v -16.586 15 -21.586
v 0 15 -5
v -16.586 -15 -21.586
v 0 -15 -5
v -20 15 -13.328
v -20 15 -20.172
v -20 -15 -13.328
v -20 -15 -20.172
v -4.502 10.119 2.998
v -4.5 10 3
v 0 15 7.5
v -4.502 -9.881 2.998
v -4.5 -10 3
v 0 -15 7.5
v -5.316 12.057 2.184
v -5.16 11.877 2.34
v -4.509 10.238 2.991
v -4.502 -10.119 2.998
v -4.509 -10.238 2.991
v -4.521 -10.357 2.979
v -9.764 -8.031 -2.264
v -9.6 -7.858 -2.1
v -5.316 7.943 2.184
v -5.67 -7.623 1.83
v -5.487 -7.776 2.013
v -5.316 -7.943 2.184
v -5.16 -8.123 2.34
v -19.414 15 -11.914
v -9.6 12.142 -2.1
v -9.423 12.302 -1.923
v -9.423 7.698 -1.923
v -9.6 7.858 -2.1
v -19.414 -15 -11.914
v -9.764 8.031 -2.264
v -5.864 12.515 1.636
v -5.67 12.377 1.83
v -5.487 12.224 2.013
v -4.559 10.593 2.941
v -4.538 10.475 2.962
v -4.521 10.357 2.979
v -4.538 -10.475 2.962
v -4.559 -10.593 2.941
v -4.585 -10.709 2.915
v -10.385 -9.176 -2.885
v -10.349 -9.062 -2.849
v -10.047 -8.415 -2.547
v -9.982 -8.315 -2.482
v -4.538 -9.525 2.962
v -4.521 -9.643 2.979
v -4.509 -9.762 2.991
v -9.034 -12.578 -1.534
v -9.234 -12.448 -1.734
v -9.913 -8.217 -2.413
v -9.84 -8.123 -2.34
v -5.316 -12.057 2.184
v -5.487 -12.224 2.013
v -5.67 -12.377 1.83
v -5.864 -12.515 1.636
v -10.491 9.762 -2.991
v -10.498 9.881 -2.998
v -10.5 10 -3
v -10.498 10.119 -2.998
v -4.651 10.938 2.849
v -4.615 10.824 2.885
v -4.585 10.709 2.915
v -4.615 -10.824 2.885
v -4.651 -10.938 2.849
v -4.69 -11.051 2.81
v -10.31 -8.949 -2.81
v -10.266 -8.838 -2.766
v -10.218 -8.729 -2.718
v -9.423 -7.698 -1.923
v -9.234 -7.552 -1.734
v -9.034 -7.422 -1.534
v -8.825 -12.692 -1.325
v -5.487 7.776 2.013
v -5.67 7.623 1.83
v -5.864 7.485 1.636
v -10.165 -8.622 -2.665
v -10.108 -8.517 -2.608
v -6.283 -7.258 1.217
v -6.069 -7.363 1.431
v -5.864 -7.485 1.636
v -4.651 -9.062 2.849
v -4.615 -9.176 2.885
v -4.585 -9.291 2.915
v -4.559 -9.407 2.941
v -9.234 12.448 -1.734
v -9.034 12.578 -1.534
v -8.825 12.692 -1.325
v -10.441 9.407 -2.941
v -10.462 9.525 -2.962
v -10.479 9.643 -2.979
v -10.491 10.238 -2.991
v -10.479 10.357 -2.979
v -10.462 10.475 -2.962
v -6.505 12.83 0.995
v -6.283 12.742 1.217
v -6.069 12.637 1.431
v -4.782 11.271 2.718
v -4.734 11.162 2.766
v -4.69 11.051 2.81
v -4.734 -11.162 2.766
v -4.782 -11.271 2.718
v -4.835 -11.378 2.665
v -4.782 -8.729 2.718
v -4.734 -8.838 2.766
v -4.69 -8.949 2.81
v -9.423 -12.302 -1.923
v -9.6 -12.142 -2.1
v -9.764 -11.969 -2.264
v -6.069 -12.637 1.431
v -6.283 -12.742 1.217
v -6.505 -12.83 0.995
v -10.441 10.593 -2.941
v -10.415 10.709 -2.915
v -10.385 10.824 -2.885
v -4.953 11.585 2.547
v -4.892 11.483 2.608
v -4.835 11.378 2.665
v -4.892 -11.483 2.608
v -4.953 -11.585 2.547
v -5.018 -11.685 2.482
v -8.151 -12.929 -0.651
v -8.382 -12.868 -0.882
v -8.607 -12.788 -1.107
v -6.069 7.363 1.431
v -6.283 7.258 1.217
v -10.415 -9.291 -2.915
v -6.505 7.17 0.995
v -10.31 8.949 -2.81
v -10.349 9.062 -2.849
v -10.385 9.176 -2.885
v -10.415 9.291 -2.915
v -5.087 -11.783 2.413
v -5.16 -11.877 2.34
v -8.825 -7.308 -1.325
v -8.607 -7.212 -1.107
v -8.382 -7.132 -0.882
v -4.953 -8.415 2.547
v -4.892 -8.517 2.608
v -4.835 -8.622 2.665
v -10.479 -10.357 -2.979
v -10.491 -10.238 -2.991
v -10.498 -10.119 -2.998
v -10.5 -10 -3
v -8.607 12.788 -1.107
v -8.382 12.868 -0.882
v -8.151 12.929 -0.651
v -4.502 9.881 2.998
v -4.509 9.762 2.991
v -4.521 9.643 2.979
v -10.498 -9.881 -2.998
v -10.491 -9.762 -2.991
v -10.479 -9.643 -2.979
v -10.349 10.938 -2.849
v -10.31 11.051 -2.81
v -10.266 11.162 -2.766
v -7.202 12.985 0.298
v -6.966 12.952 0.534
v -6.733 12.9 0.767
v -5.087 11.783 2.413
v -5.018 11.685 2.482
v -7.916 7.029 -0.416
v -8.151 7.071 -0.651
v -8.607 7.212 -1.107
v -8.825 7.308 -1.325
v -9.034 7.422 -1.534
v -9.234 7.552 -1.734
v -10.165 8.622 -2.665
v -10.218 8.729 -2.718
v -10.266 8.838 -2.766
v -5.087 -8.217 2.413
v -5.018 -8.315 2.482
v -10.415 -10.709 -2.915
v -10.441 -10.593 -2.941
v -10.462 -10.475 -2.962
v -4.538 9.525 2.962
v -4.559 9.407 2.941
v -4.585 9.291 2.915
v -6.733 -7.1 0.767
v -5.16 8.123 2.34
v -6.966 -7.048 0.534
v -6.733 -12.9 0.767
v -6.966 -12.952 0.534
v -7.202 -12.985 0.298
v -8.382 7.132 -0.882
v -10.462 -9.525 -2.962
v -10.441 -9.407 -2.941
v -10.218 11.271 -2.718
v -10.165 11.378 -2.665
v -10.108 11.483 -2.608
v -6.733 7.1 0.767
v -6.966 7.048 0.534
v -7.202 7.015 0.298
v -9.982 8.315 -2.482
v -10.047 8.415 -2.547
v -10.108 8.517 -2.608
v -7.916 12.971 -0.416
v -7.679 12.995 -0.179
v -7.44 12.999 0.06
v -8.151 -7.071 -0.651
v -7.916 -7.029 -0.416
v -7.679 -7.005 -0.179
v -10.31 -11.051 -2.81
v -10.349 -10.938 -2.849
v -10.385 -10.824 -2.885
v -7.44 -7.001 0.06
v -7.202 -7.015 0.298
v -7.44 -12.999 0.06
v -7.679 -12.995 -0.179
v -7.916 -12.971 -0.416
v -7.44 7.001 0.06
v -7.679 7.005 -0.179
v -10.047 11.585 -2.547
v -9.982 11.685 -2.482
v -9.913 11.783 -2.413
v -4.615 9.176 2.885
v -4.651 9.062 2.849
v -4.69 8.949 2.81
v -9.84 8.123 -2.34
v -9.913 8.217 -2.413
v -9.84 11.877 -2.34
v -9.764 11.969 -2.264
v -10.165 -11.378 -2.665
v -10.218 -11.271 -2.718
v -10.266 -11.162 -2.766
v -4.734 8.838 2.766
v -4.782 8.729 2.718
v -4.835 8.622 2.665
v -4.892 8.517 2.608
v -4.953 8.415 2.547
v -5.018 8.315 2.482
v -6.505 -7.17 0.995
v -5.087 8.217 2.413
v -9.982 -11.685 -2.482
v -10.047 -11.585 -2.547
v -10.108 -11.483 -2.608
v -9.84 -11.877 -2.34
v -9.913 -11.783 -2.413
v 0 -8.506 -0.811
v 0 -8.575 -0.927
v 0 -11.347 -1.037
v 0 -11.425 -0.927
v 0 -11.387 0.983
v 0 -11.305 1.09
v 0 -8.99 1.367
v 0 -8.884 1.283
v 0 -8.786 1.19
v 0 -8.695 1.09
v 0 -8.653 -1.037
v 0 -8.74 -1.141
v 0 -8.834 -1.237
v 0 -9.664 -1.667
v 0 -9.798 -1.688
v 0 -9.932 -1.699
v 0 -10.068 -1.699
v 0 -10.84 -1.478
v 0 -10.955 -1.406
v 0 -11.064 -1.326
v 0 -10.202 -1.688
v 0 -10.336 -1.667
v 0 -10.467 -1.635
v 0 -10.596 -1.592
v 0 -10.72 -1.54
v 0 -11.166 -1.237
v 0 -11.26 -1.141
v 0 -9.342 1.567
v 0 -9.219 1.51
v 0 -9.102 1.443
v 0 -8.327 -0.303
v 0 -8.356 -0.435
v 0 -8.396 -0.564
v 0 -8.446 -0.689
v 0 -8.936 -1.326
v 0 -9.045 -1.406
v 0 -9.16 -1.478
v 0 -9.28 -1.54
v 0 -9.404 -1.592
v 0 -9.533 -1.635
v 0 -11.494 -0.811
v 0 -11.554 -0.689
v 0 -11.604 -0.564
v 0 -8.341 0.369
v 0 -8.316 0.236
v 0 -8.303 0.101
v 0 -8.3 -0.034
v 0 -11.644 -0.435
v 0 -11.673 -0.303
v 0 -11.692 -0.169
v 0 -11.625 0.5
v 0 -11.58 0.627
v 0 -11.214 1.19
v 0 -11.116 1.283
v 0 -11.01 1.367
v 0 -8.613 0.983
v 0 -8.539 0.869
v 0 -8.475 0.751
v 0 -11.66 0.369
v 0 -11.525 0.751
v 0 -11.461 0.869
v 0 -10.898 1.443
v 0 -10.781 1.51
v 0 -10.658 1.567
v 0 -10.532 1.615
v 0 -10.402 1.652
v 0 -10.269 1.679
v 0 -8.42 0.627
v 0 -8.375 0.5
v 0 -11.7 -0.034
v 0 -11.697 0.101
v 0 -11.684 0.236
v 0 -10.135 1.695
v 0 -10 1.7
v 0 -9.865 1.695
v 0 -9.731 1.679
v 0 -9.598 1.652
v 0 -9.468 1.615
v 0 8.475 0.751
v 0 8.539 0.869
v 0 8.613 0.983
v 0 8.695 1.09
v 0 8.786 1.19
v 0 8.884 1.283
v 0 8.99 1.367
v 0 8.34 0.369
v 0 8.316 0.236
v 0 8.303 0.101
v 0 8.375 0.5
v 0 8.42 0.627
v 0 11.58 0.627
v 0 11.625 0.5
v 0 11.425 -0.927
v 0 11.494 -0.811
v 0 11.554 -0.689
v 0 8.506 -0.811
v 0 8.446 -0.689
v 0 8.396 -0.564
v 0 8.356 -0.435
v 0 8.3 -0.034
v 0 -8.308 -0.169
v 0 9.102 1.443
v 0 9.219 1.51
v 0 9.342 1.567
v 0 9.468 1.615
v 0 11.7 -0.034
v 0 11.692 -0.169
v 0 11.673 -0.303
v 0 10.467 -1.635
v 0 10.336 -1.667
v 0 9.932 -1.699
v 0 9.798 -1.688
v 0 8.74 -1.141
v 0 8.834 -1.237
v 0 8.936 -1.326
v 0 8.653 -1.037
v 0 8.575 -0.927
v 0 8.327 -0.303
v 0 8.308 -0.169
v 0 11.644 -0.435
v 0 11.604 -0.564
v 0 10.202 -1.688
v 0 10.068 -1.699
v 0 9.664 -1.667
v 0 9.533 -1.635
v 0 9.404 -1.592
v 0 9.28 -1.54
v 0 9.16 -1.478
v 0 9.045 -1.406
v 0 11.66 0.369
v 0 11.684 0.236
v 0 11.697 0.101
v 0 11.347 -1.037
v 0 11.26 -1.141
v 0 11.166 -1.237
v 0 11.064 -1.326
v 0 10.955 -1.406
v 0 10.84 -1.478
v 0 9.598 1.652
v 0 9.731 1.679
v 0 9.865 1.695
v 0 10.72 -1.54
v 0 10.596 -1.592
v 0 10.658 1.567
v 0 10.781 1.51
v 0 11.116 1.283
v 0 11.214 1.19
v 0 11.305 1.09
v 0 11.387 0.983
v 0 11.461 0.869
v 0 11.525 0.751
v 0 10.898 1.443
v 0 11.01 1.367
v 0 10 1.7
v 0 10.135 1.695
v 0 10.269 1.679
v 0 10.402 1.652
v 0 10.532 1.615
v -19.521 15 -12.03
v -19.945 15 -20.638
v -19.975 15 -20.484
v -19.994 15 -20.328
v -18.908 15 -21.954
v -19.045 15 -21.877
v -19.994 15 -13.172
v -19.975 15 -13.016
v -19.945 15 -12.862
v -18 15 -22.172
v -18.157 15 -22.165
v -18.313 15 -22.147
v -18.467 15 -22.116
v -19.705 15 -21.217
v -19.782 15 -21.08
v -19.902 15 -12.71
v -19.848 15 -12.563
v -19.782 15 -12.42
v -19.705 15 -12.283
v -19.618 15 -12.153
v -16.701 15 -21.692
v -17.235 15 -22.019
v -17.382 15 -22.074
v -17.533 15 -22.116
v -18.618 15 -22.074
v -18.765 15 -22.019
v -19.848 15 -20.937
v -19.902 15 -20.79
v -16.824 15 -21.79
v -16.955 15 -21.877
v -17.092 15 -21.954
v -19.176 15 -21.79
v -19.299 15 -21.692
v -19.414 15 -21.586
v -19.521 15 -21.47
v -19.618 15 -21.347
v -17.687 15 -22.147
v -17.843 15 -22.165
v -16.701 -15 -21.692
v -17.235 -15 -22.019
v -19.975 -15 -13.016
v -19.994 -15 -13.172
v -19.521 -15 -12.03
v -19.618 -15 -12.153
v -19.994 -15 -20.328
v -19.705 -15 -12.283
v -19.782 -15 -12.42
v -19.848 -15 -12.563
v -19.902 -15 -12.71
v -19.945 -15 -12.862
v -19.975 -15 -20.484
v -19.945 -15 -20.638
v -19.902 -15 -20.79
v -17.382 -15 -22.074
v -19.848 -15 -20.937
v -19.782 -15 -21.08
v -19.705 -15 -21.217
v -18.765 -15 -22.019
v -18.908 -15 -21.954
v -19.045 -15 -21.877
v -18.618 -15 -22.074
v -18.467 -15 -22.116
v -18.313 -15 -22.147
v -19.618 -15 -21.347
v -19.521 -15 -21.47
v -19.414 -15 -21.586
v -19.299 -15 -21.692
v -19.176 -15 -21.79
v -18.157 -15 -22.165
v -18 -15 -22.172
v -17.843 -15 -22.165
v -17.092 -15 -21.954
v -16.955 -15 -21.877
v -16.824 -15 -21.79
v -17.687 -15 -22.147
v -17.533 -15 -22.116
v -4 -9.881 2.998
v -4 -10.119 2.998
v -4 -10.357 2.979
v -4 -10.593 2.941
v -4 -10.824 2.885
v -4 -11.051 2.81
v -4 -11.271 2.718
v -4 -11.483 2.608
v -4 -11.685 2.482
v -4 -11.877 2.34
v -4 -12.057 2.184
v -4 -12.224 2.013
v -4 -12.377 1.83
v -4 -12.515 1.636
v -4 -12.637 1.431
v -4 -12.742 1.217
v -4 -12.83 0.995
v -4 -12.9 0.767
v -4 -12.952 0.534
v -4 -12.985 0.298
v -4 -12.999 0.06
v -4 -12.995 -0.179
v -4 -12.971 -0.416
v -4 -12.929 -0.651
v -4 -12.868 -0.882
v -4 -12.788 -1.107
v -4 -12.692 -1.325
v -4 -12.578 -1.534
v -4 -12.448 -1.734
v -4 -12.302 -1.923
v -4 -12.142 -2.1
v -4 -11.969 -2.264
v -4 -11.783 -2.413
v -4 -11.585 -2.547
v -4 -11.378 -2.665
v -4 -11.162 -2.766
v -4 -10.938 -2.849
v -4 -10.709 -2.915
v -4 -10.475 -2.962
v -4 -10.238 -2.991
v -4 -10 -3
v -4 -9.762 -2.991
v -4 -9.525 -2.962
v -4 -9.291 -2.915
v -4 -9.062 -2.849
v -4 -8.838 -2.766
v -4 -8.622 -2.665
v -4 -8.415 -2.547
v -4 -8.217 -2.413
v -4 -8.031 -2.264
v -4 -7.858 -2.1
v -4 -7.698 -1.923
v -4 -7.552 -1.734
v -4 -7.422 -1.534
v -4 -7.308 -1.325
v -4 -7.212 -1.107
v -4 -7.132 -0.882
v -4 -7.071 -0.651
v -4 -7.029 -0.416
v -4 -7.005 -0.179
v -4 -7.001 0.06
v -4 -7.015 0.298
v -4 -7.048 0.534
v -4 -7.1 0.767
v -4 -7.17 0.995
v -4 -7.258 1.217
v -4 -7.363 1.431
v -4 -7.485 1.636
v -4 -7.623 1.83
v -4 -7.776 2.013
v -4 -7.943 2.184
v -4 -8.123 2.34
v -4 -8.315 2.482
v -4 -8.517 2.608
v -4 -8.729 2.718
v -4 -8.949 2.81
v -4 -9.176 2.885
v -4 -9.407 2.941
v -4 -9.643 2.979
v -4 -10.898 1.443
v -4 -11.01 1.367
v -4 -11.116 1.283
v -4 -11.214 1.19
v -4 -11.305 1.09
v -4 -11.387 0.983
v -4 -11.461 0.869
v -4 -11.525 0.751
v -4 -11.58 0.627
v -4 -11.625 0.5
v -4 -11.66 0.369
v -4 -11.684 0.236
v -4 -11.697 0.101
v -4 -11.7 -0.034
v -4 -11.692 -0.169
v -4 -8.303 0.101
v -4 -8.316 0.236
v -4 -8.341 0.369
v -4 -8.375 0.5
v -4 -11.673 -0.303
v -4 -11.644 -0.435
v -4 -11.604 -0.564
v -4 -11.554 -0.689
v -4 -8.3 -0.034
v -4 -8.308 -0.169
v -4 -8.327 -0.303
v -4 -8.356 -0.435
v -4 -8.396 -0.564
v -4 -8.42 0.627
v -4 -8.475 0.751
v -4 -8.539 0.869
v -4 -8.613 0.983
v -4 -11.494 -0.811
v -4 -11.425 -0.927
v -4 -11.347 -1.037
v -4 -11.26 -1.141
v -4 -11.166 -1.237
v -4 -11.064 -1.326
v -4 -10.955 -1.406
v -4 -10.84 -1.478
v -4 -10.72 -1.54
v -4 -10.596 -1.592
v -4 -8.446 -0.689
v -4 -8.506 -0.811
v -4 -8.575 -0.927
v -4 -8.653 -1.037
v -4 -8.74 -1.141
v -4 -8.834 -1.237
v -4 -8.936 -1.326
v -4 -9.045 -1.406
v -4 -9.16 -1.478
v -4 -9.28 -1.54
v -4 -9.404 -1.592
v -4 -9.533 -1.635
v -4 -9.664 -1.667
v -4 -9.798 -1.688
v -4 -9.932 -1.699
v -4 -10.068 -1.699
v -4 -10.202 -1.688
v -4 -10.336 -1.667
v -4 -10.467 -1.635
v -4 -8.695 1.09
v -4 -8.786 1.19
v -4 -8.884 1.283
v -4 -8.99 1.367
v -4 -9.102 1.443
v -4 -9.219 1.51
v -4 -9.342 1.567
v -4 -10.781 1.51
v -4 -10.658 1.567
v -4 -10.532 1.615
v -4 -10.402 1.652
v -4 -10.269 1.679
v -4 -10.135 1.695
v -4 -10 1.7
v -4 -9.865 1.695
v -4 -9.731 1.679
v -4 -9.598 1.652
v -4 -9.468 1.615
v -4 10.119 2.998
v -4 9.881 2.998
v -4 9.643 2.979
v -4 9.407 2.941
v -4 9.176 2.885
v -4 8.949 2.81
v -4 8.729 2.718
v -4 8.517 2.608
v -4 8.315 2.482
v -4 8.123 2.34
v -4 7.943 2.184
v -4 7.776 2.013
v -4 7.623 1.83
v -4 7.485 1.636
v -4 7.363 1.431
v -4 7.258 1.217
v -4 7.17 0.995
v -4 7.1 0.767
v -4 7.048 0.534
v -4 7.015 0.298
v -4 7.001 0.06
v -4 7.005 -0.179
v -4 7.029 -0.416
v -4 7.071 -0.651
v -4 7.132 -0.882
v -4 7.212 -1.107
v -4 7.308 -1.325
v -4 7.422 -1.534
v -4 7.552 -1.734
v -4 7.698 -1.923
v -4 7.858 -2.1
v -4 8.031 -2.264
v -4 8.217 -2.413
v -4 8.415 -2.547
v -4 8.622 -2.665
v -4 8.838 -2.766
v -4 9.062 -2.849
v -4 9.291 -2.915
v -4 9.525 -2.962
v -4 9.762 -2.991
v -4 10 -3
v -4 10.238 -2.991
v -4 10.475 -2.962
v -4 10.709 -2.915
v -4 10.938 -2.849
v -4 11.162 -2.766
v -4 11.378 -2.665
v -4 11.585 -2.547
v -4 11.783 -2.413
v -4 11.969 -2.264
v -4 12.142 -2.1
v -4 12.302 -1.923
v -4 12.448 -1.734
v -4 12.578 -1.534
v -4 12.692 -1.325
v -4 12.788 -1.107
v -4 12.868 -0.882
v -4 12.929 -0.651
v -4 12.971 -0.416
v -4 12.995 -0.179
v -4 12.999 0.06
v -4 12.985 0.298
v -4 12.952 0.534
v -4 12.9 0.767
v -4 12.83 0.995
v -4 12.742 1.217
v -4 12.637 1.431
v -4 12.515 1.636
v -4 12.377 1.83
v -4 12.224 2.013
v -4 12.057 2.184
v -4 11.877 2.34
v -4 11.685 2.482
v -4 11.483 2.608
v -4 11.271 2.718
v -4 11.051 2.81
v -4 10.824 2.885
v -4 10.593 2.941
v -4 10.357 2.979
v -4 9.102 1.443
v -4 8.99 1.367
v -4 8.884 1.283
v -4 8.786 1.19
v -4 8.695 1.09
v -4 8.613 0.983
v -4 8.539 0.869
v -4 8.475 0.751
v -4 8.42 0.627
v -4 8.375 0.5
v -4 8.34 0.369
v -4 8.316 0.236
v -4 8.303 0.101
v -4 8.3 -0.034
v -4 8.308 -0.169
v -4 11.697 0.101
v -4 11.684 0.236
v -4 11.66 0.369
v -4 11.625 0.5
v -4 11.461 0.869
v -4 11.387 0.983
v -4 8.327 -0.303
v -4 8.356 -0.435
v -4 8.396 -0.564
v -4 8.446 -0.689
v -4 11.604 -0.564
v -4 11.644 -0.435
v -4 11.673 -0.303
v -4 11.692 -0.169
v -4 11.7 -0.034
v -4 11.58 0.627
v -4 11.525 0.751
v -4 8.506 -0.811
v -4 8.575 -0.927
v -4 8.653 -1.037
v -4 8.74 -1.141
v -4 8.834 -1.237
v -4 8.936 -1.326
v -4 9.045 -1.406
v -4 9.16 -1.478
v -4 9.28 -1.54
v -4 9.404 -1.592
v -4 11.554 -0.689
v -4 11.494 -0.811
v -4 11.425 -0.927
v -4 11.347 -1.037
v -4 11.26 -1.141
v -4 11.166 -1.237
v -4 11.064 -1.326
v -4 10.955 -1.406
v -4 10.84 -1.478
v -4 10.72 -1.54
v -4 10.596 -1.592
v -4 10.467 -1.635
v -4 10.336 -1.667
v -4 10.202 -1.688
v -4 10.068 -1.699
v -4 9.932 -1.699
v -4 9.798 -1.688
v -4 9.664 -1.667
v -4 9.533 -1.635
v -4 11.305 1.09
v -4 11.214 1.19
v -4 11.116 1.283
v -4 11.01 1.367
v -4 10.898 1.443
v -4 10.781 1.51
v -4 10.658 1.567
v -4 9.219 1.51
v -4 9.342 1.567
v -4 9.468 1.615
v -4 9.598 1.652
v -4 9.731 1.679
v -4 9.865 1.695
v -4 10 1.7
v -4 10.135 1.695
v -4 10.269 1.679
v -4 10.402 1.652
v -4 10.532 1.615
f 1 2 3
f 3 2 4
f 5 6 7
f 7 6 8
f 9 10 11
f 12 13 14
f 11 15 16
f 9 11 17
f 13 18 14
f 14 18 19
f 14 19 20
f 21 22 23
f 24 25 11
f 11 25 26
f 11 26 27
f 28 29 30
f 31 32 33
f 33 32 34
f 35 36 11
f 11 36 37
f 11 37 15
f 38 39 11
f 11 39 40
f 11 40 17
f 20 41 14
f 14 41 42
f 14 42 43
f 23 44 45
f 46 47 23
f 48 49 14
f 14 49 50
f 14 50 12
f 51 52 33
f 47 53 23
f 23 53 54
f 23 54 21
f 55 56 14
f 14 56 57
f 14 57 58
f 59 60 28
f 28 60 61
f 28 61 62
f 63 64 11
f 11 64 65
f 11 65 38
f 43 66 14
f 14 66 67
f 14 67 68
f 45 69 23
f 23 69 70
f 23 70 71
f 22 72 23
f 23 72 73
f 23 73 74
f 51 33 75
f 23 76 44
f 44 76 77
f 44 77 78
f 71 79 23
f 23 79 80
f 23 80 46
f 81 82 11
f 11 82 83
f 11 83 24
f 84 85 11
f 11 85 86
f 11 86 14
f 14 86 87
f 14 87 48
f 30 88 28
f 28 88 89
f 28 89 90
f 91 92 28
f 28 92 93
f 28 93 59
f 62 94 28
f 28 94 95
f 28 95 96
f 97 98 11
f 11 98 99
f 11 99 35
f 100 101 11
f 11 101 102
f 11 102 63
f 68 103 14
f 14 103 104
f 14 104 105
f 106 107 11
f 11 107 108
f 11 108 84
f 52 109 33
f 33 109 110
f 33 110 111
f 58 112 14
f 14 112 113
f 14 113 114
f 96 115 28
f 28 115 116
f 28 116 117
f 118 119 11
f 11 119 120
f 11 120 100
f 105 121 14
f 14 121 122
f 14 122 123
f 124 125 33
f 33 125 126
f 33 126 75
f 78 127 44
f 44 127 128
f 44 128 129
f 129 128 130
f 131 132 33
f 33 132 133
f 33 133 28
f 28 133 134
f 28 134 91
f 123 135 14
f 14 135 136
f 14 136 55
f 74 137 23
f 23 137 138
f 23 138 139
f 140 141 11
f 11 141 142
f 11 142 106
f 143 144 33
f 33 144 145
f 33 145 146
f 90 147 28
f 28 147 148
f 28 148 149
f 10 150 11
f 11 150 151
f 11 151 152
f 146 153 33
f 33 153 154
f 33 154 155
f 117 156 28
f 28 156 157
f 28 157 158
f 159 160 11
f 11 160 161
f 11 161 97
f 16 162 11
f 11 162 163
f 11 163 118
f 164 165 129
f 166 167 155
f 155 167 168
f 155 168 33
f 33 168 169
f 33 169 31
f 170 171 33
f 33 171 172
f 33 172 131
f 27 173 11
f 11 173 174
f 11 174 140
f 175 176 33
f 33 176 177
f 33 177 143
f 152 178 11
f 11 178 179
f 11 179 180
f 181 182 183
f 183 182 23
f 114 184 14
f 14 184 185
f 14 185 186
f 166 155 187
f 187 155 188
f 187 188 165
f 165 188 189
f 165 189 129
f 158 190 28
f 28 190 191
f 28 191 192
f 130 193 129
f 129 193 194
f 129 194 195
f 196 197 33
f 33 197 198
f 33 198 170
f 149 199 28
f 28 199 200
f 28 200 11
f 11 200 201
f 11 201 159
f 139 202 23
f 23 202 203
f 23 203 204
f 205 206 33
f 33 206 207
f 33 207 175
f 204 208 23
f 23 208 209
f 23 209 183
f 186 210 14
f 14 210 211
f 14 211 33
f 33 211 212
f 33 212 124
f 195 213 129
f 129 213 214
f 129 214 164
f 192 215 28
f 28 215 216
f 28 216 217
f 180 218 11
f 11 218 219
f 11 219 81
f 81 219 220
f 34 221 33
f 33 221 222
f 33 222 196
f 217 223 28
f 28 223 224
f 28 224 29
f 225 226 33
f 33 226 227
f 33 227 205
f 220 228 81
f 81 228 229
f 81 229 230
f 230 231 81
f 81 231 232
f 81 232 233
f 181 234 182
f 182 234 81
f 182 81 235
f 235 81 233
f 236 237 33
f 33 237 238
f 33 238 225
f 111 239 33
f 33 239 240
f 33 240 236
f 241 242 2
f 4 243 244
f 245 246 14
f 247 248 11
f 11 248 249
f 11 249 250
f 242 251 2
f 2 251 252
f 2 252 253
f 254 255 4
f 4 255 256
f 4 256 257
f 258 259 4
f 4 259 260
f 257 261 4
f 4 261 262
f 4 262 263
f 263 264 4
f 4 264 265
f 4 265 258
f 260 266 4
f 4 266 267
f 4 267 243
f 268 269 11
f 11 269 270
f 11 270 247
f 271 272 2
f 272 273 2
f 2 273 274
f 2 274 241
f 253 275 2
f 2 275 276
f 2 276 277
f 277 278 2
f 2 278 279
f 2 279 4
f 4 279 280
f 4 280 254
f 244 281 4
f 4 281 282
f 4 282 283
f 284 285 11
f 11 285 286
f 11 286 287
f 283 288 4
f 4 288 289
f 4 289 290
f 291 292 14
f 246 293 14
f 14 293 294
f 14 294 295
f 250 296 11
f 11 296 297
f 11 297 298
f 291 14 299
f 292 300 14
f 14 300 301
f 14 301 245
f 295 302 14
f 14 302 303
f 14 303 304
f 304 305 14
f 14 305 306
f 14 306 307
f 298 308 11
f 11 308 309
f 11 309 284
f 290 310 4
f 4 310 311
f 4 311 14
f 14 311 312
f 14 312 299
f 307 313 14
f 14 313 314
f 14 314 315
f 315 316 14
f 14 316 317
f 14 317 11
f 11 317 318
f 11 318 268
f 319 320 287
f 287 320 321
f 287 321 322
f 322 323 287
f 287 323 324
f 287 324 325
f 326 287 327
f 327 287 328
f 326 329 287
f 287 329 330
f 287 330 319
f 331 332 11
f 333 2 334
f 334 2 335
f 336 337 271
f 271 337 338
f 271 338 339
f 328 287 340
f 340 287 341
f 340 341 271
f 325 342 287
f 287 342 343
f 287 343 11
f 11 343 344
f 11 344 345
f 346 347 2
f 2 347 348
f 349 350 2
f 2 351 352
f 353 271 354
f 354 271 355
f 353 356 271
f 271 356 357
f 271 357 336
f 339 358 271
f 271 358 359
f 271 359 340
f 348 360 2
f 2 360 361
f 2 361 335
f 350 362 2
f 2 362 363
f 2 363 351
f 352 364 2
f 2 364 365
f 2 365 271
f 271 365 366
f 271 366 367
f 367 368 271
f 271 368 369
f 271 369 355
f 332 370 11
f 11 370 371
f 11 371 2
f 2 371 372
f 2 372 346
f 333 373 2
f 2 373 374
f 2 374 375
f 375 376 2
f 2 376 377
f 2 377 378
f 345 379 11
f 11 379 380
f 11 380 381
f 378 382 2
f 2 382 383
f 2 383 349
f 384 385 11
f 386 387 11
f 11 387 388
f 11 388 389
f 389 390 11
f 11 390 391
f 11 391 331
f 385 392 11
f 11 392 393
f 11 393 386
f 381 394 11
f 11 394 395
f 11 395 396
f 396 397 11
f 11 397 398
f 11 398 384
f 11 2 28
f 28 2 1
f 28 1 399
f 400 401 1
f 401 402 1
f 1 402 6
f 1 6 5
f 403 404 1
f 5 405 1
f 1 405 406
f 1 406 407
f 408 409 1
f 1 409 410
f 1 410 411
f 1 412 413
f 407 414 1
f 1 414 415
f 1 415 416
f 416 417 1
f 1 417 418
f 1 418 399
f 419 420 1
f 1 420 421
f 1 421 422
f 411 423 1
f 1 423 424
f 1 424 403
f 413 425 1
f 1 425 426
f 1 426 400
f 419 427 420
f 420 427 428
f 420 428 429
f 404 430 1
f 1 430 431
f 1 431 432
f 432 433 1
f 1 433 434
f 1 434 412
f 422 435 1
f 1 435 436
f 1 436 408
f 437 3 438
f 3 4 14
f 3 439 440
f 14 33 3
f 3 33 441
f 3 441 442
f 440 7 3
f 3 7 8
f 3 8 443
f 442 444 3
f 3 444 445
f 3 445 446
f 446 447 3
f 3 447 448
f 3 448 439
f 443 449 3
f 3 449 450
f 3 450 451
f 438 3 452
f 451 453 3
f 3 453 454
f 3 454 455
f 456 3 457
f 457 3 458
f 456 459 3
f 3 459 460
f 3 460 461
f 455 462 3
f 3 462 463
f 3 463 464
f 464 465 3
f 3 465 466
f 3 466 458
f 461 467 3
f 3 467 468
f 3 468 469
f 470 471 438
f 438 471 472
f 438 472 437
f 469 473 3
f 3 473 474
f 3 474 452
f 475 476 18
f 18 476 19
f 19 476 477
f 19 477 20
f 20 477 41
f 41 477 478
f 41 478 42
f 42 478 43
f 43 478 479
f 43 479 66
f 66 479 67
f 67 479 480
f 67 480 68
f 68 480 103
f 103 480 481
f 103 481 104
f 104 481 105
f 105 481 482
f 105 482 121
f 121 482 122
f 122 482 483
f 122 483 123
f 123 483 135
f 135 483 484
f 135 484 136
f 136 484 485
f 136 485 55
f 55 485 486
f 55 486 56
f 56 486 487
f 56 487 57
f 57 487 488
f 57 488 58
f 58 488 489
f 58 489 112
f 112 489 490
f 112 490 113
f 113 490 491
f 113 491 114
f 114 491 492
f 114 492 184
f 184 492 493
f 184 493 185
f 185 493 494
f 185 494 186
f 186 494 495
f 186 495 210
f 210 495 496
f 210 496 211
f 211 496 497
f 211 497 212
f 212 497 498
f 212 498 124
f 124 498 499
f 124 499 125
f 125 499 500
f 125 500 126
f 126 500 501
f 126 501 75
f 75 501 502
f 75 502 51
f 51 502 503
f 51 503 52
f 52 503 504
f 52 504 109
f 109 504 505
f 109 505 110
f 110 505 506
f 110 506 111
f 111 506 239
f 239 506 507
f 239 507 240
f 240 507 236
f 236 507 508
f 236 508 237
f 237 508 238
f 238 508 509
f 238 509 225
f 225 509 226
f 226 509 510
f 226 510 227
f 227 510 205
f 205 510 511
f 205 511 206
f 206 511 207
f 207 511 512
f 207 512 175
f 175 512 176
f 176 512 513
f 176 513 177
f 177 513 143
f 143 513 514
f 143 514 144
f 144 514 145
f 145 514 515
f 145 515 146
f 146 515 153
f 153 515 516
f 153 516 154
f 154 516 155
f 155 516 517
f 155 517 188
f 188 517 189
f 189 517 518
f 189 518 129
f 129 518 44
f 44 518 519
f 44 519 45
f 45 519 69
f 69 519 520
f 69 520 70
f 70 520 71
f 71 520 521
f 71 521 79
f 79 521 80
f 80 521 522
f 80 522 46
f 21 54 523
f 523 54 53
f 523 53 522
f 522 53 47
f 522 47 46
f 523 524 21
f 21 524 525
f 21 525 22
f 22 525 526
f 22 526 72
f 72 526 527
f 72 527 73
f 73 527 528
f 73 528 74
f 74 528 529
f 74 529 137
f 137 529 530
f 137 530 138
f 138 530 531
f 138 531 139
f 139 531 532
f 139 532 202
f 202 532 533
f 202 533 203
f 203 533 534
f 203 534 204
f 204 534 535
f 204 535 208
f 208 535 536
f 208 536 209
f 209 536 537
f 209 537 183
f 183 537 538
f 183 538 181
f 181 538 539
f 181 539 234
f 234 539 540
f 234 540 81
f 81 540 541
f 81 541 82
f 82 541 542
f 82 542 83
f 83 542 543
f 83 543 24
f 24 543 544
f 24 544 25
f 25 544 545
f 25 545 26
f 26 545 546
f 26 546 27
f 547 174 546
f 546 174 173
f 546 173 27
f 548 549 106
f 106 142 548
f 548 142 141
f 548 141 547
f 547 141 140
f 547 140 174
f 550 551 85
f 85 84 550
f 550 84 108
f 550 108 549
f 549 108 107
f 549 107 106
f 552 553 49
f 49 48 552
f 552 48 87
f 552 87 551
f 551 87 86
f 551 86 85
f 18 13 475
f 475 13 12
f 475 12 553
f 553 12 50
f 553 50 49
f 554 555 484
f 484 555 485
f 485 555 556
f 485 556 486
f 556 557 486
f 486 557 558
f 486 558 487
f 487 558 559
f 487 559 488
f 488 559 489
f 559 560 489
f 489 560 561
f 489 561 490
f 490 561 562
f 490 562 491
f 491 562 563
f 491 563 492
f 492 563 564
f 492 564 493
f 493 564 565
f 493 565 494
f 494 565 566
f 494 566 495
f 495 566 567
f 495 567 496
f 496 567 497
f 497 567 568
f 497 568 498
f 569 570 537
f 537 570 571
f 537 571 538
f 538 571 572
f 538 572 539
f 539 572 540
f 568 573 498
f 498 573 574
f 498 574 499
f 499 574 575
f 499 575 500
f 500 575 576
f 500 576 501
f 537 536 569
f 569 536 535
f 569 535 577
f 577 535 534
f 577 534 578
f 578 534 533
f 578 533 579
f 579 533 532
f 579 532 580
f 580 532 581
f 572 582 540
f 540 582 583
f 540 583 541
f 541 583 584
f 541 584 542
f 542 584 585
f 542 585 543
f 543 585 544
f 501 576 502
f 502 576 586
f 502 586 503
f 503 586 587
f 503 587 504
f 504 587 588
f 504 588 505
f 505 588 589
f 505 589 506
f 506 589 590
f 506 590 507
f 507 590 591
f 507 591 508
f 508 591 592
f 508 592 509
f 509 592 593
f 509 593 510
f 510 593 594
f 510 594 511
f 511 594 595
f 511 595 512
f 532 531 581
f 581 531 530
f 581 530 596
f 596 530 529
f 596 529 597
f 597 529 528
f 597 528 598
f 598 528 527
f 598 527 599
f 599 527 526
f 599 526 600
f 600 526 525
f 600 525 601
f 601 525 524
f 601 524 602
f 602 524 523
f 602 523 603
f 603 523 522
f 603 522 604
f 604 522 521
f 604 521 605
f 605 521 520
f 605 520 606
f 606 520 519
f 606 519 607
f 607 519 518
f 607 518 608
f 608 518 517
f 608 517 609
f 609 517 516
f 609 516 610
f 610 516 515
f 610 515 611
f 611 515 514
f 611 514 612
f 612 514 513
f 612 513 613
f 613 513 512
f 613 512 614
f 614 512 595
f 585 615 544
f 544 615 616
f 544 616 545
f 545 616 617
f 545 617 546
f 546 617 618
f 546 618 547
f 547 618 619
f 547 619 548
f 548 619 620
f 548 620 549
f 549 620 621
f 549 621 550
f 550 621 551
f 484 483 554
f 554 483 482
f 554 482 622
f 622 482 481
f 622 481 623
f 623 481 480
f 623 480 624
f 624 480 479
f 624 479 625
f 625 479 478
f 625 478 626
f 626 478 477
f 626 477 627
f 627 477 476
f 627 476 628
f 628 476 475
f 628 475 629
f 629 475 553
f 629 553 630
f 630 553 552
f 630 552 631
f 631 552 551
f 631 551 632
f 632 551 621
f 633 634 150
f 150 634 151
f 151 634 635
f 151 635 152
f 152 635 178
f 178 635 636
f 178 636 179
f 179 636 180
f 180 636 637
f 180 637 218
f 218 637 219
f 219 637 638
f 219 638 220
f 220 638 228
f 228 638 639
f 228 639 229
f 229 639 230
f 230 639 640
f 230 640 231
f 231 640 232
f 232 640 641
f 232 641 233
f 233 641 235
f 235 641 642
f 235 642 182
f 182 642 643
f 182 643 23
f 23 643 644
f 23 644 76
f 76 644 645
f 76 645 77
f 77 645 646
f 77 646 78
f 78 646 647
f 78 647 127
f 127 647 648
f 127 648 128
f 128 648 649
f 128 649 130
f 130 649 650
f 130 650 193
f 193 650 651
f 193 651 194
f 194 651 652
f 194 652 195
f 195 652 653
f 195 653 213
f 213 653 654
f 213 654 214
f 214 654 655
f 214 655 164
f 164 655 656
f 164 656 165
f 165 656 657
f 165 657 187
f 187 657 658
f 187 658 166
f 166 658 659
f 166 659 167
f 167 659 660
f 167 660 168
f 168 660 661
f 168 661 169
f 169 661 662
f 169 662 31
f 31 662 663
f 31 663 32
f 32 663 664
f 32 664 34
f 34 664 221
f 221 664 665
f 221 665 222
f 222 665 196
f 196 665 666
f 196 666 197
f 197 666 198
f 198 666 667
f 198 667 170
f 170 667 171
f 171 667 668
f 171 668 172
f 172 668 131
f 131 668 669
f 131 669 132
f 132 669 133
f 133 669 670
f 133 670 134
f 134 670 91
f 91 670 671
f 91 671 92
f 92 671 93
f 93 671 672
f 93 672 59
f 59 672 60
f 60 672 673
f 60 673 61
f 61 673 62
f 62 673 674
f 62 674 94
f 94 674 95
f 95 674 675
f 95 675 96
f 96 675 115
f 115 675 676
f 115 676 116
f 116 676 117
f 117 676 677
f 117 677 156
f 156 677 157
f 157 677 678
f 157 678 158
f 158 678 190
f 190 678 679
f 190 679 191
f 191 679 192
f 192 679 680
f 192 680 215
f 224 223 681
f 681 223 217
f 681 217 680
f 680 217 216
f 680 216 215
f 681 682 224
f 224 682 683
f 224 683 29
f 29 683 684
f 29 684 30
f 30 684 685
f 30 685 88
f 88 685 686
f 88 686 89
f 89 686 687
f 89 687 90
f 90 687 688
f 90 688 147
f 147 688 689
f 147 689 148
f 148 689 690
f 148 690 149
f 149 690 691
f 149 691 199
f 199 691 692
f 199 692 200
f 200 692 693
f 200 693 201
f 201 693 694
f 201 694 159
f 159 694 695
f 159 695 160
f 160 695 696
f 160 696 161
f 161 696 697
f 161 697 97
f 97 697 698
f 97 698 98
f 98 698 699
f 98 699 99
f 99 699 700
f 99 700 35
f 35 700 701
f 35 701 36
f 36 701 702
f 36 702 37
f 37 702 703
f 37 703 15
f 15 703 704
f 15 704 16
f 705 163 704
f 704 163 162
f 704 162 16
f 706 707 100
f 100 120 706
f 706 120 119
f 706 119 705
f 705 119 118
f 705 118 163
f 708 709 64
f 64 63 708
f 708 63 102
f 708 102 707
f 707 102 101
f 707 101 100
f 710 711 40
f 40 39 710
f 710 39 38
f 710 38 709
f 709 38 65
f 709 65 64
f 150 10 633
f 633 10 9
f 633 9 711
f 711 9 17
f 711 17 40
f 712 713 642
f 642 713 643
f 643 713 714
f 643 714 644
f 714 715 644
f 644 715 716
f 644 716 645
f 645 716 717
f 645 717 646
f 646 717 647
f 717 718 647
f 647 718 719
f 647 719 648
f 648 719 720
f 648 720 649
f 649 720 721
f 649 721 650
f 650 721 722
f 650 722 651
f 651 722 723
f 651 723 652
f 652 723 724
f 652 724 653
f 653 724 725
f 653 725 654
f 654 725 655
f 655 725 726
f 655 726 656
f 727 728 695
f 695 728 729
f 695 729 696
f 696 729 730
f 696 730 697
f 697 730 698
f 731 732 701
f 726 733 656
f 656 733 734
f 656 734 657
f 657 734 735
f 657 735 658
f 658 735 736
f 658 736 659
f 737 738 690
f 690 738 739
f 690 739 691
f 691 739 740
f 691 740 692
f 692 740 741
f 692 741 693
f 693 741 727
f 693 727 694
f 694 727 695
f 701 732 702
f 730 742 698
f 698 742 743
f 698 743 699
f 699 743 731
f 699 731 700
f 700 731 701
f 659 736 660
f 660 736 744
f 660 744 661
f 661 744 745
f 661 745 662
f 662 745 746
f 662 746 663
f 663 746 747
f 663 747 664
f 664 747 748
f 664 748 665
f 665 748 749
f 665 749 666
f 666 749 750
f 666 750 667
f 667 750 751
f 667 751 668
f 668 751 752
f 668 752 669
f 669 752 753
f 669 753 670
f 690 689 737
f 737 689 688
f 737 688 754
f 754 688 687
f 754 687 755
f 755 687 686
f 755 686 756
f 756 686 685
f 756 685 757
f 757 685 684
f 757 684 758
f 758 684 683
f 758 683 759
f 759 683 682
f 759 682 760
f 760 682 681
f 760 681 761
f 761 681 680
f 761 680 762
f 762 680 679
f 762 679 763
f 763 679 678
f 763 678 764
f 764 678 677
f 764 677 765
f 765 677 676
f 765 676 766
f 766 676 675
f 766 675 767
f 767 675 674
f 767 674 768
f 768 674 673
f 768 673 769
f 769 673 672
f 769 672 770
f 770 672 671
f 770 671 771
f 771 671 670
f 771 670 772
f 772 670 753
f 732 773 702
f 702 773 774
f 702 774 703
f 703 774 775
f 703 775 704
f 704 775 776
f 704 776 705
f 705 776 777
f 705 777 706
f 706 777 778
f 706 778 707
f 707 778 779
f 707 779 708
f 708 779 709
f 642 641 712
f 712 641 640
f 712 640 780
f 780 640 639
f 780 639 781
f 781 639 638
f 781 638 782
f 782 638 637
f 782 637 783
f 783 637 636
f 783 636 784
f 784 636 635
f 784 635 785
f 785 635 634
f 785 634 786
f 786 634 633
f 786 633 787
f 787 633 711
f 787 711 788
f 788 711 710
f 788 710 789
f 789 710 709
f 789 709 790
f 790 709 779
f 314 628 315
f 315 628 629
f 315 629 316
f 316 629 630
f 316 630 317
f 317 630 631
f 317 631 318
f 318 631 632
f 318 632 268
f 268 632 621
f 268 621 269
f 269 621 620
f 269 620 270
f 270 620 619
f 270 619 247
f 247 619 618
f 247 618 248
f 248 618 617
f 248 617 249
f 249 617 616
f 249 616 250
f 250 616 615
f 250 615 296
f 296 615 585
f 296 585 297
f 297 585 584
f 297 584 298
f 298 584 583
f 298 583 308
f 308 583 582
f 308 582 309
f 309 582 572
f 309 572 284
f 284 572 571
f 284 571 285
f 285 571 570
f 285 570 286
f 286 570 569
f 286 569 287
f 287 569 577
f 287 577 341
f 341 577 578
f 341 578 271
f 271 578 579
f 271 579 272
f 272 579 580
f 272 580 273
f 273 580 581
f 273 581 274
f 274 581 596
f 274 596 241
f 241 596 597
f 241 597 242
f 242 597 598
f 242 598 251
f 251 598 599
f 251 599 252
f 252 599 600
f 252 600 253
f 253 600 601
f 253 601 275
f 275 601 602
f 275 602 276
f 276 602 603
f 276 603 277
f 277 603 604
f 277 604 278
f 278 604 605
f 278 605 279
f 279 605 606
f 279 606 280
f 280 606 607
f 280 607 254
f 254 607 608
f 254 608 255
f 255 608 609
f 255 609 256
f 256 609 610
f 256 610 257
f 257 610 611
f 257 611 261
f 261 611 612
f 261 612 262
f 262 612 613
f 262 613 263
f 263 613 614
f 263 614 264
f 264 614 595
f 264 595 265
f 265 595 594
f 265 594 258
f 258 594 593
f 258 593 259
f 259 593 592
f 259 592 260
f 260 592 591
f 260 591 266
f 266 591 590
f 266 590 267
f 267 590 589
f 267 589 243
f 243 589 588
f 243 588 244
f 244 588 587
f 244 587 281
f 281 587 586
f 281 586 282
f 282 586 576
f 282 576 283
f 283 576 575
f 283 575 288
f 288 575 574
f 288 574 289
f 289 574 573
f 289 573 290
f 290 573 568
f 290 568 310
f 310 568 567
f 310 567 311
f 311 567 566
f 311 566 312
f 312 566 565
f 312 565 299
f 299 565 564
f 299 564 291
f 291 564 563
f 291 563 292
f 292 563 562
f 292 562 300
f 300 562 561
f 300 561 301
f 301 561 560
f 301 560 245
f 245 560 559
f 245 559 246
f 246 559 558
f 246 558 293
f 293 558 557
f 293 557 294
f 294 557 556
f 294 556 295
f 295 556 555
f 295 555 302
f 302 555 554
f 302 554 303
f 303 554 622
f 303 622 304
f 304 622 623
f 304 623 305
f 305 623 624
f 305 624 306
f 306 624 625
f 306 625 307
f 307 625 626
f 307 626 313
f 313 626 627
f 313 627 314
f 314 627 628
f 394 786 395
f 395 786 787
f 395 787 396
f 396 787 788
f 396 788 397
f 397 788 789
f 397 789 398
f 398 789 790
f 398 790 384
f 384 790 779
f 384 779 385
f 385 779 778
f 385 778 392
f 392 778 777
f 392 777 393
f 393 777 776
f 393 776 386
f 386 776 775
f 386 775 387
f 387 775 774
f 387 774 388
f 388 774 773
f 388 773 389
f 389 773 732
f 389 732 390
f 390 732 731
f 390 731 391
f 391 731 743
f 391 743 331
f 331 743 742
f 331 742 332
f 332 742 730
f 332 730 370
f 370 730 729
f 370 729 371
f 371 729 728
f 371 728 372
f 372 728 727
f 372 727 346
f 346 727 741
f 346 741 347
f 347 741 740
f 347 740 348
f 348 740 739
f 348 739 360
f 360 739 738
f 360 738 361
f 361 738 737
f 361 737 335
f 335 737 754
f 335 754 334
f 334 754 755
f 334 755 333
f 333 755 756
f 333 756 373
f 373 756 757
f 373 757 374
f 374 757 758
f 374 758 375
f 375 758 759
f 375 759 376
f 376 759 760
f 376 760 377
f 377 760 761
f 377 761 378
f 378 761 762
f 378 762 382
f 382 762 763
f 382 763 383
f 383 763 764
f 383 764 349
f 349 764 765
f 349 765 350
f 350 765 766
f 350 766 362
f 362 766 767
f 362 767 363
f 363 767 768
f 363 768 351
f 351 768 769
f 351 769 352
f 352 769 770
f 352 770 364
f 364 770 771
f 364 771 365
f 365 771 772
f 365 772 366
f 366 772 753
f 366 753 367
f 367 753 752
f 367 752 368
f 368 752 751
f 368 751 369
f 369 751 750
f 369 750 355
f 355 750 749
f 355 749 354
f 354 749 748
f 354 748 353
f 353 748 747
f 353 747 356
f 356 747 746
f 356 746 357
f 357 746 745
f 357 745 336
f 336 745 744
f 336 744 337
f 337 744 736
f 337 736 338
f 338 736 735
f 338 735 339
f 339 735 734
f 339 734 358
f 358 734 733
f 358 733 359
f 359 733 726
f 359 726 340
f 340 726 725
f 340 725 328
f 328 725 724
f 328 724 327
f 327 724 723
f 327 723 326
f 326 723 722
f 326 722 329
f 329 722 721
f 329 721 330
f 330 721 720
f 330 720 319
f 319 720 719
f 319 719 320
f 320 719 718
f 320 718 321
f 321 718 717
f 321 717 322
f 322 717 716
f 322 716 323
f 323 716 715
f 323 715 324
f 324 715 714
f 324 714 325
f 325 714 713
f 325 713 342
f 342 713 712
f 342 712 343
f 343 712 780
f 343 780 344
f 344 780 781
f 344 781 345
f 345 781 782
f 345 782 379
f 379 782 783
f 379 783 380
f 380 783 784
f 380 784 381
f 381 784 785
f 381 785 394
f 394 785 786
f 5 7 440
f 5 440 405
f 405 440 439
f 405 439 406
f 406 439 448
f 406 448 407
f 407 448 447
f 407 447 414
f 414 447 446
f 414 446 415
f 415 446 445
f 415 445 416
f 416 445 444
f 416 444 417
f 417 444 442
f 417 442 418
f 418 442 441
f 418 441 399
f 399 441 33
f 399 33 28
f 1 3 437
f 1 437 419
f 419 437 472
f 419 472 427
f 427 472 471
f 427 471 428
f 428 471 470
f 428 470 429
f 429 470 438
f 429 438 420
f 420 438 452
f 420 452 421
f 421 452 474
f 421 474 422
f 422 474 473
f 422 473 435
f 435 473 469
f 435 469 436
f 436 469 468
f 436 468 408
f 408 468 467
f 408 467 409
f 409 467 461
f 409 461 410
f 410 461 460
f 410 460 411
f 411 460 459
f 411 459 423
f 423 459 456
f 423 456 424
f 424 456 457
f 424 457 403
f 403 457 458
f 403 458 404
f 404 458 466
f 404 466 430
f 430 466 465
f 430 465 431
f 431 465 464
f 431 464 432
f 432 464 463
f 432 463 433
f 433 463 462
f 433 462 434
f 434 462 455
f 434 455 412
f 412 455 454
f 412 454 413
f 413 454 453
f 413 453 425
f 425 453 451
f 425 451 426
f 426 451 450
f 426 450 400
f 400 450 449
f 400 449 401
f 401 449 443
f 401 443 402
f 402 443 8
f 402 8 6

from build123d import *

# Parameters (mm, degrees)
BOSS_EXTRUDE1_DEPTH  = 15
CUT_EXTRUDE1_START   = -4
SKETCH2_R            = 3
CUT_EXTRUDE1_DEPTH   = 17
M3_CLEARANCE_HOLE1_D = 3.4
FILLET2_R            = 2


with BuildPart() as part:
    # Sketch1 → Boss-Extrude1 (new body, symmetric)
    with BuildSketch(Plane(origin=(0, 0, 0), x_dir=(1, 0, 0), z_dir=(0, 1, 0))):
        Polygon((0, 0), (0, -7.5), (-20, 12.5), (-20, 25), (0, 5), align=None)
    extrude(amount=BOSS_EXTRUDE1_DEPTH, both=True)

    # Sketch2 → Cut-Extrude1 (cut, through all)
    with BuildSketch(Plane(origin=(0, 0, 0), x_dir=(0, 0, -1), z_dir=(1, 0, 0)).offset(CUT_EXTRUDE1_START)):
        with Locations((0, 10)):
            Circle(SKETCH2_R)
        with Locations((0, -10)):
            Circle(SKETCH2_R)
    extrude(amount=-CUT_EXTRUDE1_DEPTH, mode=Mode.SUBTRACT)

    # M3 Clearance Hole1 (through all)
    with Locations(Plane.ZY.offset(4)):
        with Locations((0, 10), (0, -10)):
            Hole(M3_CLEARANCE_HOLE1_D / 2)

    # Fillet2
    fillet2_edges = [part.edges().sort_by_distance(p)[0] for p in [
        (-20, 0, -12.5),
        (-20, 0, -25),
    ]]
    fillet(fillet2_edges, radius=FILLET2_R)


solid = part.part
